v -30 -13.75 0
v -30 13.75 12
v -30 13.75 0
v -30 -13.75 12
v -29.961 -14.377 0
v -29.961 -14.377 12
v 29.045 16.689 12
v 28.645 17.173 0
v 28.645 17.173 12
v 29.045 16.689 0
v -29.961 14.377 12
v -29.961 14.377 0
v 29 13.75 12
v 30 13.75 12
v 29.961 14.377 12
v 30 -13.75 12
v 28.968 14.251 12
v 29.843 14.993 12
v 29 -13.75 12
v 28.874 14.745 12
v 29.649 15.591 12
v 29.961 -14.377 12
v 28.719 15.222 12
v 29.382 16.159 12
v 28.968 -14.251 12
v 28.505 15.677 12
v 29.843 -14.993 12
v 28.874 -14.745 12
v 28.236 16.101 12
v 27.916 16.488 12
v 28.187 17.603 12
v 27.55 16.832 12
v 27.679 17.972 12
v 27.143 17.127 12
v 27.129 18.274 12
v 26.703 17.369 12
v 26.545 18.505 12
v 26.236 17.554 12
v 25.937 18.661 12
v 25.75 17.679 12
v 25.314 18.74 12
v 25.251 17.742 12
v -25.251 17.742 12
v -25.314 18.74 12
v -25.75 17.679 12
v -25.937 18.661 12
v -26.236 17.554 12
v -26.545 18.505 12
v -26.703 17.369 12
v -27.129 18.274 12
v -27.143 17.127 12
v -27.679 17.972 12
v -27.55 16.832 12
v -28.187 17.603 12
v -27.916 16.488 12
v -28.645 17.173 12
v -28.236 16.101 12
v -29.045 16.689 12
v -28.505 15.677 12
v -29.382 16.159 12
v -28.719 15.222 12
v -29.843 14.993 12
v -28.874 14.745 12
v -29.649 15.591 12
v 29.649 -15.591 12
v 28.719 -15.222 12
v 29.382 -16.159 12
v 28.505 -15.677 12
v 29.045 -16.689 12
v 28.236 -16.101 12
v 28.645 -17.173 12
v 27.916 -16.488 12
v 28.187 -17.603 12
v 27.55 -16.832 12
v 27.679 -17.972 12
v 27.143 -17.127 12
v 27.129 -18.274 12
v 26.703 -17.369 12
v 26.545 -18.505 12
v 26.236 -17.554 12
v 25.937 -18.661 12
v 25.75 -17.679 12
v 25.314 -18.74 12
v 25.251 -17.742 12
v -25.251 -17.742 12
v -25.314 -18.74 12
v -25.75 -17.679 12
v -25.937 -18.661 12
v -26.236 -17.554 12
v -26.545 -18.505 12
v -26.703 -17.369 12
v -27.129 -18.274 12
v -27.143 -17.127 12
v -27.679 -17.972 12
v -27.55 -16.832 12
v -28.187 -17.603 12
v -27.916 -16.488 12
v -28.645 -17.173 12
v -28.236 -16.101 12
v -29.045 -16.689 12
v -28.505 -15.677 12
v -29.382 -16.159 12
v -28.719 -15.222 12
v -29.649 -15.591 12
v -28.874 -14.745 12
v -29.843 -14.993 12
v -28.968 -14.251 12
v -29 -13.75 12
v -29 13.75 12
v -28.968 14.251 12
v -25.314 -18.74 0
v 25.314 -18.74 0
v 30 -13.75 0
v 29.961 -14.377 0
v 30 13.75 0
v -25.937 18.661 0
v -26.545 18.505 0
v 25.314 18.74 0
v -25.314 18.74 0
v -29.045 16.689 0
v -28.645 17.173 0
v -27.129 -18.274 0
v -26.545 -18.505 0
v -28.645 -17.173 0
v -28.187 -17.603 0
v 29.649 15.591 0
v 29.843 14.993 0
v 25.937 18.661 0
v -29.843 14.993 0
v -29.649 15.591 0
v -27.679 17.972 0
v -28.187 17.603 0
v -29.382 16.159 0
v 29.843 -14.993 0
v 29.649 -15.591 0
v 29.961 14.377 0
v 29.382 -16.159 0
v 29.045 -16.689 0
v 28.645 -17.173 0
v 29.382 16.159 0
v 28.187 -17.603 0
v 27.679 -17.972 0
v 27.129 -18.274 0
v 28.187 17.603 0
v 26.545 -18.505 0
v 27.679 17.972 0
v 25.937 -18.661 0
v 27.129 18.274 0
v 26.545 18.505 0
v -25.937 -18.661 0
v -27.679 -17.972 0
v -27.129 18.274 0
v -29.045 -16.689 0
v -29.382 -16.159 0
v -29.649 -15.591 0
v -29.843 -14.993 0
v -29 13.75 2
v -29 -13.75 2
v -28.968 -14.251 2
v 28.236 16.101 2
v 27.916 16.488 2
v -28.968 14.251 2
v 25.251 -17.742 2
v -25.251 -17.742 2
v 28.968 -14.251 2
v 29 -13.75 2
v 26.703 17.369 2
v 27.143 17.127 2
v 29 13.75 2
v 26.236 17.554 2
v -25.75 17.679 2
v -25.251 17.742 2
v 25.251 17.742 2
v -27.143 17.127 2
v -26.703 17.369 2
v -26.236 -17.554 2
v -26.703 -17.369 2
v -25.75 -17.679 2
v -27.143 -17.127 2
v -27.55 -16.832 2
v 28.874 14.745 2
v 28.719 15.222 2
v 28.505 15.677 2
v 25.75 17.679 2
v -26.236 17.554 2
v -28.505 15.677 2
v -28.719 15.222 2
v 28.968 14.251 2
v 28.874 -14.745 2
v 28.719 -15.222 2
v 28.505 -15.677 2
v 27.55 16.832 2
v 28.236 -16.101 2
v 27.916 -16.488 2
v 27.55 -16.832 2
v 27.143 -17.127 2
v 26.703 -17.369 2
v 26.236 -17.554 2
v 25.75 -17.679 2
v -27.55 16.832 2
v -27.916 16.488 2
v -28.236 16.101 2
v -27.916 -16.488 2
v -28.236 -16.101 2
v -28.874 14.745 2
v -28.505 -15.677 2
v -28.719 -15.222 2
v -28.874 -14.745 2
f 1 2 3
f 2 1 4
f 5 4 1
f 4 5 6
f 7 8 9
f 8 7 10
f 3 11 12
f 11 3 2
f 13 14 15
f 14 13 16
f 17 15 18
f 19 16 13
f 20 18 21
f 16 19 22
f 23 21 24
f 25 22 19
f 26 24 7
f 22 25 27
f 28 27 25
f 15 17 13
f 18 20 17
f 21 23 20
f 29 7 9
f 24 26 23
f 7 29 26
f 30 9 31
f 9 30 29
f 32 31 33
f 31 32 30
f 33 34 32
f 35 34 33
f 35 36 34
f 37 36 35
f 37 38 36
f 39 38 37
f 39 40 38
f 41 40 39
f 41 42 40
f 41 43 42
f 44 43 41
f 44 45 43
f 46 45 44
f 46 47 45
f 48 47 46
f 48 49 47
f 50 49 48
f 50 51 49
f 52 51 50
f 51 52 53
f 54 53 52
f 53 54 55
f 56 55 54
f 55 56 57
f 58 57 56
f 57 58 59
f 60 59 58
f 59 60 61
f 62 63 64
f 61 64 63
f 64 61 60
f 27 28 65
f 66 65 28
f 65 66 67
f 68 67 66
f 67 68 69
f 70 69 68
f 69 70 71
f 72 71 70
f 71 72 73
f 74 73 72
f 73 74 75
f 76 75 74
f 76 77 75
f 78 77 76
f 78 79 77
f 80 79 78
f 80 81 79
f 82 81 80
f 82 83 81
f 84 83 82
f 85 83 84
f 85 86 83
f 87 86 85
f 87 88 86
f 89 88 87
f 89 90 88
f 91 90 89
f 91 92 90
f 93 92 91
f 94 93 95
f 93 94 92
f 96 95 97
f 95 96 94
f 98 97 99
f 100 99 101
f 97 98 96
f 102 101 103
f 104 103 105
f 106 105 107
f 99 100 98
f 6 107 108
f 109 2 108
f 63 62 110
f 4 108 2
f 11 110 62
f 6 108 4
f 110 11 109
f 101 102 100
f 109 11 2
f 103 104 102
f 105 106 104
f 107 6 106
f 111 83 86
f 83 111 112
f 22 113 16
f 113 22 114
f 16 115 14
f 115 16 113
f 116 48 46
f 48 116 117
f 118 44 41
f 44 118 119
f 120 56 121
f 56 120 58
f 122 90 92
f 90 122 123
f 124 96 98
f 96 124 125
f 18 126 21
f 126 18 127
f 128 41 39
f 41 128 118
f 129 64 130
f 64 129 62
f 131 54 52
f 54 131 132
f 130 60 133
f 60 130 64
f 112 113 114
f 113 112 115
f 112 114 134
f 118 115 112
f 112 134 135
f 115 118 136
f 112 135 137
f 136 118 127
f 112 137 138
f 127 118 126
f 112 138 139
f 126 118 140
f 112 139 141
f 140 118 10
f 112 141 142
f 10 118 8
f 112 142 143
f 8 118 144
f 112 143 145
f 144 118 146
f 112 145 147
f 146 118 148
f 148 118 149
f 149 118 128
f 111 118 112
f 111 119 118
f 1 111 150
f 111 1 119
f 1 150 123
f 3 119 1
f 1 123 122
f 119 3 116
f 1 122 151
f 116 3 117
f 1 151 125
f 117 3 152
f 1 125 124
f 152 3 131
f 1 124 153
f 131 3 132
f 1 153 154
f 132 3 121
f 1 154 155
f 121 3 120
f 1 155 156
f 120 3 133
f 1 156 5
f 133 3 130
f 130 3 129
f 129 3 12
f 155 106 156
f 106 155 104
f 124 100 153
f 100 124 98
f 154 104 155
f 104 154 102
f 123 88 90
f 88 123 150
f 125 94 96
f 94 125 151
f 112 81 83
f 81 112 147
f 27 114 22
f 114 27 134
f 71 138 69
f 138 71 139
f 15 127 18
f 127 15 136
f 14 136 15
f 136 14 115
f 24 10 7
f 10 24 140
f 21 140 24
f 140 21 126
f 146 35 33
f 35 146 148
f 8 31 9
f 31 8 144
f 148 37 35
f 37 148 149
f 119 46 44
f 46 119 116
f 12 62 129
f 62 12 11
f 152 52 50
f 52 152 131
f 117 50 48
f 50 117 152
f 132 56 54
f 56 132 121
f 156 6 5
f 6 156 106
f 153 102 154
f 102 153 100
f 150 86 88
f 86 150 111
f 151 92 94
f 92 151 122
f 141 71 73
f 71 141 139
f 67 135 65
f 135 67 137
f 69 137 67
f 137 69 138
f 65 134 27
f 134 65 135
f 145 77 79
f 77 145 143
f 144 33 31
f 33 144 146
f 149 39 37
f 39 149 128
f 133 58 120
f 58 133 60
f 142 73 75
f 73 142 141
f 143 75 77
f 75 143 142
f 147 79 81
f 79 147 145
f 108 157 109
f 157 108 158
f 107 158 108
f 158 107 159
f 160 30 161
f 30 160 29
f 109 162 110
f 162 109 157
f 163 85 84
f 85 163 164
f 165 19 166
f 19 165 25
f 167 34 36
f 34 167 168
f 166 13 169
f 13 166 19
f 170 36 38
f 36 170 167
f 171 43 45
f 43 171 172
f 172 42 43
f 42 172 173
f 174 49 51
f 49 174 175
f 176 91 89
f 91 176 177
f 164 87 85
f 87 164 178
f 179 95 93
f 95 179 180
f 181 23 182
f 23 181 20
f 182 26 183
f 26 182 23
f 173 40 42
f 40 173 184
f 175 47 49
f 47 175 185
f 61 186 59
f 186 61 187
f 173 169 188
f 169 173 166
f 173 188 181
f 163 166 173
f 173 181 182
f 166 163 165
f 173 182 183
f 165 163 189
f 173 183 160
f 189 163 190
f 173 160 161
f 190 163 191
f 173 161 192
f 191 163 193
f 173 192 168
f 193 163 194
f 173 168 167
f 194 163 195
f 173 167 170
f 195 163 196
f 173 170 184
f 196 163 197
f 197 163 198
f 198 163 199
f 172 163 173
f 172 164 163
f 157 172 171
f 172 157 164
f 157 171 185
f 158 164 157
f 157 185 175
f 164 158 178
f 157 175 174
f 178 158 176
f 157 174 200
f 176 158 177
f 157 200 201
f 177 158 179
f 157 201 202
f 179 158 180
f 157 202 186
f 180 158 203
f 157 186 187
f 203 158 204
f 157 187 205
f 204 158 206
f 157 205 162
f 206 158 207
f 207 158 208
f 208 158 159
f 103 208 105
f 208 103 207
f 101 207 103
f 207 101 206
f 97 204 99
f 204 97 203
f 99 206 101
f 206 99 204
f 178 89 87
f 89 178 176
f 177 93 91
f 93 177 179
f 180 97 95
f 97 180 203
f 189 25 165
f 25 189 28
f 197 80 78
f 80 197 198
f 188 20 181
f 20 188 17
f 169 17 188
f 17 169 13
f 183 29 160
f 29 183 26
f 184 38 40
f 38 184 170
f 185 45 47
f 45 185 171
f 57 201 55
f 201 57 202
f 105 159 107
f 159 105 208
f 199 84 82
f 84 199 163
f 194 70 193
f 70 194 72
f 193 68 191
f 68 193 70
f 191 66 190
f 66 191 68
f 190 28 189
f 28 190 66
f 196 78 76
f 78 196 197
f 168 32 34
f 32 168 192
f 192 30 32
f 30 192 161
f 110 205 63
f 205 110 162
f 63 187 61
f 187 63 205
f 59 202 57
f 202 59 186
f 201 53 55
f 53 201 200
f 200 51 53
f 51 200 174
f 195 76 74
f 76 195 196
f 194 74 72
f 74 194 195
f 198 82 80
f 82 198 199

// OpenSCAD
$fn = 50;


difference() {
	union() {
		hull() {
			translate(v = [-25.0000000000, 13.7500000000, 0]) {
				cylinder(h = 12, r = 5);
			}
			translate(v = [25.0000000000, 13.7500000000, 0]) {
				cylinder(h = 12, r = 5);
			}
			translate(v = [-25.0000000000, -13.7500000000, 0]) {
				cylinder(h = 12, r = 5);
			}
			translate(v = [25.0000000000, -13.7500000000, 0]) {
				cylinder(h = 12, r = 5);
			}
		}
	}
	union() {
		translate(v = [0, 0, 2]) {
			#hull() {
				translate(v = [-25.0000000000, 13.7500000000, 0]) {
					cylinder(h = 10, r = 4);
				}
				translate(v = [25.0000000000, 13.7500000000, 0]) {
					cylinder(h = 10, r = 4);
				}
				translate(v = [-25.0000000000, -13.7500000000, 0]) {
					cylinder(h = 10, r = 4);
				}
				translate(v = [25.0000000000, -13.7500000000, 0]) {
					cylinder(h = 10, r = 4);
				}
			}
		}
	}
}
